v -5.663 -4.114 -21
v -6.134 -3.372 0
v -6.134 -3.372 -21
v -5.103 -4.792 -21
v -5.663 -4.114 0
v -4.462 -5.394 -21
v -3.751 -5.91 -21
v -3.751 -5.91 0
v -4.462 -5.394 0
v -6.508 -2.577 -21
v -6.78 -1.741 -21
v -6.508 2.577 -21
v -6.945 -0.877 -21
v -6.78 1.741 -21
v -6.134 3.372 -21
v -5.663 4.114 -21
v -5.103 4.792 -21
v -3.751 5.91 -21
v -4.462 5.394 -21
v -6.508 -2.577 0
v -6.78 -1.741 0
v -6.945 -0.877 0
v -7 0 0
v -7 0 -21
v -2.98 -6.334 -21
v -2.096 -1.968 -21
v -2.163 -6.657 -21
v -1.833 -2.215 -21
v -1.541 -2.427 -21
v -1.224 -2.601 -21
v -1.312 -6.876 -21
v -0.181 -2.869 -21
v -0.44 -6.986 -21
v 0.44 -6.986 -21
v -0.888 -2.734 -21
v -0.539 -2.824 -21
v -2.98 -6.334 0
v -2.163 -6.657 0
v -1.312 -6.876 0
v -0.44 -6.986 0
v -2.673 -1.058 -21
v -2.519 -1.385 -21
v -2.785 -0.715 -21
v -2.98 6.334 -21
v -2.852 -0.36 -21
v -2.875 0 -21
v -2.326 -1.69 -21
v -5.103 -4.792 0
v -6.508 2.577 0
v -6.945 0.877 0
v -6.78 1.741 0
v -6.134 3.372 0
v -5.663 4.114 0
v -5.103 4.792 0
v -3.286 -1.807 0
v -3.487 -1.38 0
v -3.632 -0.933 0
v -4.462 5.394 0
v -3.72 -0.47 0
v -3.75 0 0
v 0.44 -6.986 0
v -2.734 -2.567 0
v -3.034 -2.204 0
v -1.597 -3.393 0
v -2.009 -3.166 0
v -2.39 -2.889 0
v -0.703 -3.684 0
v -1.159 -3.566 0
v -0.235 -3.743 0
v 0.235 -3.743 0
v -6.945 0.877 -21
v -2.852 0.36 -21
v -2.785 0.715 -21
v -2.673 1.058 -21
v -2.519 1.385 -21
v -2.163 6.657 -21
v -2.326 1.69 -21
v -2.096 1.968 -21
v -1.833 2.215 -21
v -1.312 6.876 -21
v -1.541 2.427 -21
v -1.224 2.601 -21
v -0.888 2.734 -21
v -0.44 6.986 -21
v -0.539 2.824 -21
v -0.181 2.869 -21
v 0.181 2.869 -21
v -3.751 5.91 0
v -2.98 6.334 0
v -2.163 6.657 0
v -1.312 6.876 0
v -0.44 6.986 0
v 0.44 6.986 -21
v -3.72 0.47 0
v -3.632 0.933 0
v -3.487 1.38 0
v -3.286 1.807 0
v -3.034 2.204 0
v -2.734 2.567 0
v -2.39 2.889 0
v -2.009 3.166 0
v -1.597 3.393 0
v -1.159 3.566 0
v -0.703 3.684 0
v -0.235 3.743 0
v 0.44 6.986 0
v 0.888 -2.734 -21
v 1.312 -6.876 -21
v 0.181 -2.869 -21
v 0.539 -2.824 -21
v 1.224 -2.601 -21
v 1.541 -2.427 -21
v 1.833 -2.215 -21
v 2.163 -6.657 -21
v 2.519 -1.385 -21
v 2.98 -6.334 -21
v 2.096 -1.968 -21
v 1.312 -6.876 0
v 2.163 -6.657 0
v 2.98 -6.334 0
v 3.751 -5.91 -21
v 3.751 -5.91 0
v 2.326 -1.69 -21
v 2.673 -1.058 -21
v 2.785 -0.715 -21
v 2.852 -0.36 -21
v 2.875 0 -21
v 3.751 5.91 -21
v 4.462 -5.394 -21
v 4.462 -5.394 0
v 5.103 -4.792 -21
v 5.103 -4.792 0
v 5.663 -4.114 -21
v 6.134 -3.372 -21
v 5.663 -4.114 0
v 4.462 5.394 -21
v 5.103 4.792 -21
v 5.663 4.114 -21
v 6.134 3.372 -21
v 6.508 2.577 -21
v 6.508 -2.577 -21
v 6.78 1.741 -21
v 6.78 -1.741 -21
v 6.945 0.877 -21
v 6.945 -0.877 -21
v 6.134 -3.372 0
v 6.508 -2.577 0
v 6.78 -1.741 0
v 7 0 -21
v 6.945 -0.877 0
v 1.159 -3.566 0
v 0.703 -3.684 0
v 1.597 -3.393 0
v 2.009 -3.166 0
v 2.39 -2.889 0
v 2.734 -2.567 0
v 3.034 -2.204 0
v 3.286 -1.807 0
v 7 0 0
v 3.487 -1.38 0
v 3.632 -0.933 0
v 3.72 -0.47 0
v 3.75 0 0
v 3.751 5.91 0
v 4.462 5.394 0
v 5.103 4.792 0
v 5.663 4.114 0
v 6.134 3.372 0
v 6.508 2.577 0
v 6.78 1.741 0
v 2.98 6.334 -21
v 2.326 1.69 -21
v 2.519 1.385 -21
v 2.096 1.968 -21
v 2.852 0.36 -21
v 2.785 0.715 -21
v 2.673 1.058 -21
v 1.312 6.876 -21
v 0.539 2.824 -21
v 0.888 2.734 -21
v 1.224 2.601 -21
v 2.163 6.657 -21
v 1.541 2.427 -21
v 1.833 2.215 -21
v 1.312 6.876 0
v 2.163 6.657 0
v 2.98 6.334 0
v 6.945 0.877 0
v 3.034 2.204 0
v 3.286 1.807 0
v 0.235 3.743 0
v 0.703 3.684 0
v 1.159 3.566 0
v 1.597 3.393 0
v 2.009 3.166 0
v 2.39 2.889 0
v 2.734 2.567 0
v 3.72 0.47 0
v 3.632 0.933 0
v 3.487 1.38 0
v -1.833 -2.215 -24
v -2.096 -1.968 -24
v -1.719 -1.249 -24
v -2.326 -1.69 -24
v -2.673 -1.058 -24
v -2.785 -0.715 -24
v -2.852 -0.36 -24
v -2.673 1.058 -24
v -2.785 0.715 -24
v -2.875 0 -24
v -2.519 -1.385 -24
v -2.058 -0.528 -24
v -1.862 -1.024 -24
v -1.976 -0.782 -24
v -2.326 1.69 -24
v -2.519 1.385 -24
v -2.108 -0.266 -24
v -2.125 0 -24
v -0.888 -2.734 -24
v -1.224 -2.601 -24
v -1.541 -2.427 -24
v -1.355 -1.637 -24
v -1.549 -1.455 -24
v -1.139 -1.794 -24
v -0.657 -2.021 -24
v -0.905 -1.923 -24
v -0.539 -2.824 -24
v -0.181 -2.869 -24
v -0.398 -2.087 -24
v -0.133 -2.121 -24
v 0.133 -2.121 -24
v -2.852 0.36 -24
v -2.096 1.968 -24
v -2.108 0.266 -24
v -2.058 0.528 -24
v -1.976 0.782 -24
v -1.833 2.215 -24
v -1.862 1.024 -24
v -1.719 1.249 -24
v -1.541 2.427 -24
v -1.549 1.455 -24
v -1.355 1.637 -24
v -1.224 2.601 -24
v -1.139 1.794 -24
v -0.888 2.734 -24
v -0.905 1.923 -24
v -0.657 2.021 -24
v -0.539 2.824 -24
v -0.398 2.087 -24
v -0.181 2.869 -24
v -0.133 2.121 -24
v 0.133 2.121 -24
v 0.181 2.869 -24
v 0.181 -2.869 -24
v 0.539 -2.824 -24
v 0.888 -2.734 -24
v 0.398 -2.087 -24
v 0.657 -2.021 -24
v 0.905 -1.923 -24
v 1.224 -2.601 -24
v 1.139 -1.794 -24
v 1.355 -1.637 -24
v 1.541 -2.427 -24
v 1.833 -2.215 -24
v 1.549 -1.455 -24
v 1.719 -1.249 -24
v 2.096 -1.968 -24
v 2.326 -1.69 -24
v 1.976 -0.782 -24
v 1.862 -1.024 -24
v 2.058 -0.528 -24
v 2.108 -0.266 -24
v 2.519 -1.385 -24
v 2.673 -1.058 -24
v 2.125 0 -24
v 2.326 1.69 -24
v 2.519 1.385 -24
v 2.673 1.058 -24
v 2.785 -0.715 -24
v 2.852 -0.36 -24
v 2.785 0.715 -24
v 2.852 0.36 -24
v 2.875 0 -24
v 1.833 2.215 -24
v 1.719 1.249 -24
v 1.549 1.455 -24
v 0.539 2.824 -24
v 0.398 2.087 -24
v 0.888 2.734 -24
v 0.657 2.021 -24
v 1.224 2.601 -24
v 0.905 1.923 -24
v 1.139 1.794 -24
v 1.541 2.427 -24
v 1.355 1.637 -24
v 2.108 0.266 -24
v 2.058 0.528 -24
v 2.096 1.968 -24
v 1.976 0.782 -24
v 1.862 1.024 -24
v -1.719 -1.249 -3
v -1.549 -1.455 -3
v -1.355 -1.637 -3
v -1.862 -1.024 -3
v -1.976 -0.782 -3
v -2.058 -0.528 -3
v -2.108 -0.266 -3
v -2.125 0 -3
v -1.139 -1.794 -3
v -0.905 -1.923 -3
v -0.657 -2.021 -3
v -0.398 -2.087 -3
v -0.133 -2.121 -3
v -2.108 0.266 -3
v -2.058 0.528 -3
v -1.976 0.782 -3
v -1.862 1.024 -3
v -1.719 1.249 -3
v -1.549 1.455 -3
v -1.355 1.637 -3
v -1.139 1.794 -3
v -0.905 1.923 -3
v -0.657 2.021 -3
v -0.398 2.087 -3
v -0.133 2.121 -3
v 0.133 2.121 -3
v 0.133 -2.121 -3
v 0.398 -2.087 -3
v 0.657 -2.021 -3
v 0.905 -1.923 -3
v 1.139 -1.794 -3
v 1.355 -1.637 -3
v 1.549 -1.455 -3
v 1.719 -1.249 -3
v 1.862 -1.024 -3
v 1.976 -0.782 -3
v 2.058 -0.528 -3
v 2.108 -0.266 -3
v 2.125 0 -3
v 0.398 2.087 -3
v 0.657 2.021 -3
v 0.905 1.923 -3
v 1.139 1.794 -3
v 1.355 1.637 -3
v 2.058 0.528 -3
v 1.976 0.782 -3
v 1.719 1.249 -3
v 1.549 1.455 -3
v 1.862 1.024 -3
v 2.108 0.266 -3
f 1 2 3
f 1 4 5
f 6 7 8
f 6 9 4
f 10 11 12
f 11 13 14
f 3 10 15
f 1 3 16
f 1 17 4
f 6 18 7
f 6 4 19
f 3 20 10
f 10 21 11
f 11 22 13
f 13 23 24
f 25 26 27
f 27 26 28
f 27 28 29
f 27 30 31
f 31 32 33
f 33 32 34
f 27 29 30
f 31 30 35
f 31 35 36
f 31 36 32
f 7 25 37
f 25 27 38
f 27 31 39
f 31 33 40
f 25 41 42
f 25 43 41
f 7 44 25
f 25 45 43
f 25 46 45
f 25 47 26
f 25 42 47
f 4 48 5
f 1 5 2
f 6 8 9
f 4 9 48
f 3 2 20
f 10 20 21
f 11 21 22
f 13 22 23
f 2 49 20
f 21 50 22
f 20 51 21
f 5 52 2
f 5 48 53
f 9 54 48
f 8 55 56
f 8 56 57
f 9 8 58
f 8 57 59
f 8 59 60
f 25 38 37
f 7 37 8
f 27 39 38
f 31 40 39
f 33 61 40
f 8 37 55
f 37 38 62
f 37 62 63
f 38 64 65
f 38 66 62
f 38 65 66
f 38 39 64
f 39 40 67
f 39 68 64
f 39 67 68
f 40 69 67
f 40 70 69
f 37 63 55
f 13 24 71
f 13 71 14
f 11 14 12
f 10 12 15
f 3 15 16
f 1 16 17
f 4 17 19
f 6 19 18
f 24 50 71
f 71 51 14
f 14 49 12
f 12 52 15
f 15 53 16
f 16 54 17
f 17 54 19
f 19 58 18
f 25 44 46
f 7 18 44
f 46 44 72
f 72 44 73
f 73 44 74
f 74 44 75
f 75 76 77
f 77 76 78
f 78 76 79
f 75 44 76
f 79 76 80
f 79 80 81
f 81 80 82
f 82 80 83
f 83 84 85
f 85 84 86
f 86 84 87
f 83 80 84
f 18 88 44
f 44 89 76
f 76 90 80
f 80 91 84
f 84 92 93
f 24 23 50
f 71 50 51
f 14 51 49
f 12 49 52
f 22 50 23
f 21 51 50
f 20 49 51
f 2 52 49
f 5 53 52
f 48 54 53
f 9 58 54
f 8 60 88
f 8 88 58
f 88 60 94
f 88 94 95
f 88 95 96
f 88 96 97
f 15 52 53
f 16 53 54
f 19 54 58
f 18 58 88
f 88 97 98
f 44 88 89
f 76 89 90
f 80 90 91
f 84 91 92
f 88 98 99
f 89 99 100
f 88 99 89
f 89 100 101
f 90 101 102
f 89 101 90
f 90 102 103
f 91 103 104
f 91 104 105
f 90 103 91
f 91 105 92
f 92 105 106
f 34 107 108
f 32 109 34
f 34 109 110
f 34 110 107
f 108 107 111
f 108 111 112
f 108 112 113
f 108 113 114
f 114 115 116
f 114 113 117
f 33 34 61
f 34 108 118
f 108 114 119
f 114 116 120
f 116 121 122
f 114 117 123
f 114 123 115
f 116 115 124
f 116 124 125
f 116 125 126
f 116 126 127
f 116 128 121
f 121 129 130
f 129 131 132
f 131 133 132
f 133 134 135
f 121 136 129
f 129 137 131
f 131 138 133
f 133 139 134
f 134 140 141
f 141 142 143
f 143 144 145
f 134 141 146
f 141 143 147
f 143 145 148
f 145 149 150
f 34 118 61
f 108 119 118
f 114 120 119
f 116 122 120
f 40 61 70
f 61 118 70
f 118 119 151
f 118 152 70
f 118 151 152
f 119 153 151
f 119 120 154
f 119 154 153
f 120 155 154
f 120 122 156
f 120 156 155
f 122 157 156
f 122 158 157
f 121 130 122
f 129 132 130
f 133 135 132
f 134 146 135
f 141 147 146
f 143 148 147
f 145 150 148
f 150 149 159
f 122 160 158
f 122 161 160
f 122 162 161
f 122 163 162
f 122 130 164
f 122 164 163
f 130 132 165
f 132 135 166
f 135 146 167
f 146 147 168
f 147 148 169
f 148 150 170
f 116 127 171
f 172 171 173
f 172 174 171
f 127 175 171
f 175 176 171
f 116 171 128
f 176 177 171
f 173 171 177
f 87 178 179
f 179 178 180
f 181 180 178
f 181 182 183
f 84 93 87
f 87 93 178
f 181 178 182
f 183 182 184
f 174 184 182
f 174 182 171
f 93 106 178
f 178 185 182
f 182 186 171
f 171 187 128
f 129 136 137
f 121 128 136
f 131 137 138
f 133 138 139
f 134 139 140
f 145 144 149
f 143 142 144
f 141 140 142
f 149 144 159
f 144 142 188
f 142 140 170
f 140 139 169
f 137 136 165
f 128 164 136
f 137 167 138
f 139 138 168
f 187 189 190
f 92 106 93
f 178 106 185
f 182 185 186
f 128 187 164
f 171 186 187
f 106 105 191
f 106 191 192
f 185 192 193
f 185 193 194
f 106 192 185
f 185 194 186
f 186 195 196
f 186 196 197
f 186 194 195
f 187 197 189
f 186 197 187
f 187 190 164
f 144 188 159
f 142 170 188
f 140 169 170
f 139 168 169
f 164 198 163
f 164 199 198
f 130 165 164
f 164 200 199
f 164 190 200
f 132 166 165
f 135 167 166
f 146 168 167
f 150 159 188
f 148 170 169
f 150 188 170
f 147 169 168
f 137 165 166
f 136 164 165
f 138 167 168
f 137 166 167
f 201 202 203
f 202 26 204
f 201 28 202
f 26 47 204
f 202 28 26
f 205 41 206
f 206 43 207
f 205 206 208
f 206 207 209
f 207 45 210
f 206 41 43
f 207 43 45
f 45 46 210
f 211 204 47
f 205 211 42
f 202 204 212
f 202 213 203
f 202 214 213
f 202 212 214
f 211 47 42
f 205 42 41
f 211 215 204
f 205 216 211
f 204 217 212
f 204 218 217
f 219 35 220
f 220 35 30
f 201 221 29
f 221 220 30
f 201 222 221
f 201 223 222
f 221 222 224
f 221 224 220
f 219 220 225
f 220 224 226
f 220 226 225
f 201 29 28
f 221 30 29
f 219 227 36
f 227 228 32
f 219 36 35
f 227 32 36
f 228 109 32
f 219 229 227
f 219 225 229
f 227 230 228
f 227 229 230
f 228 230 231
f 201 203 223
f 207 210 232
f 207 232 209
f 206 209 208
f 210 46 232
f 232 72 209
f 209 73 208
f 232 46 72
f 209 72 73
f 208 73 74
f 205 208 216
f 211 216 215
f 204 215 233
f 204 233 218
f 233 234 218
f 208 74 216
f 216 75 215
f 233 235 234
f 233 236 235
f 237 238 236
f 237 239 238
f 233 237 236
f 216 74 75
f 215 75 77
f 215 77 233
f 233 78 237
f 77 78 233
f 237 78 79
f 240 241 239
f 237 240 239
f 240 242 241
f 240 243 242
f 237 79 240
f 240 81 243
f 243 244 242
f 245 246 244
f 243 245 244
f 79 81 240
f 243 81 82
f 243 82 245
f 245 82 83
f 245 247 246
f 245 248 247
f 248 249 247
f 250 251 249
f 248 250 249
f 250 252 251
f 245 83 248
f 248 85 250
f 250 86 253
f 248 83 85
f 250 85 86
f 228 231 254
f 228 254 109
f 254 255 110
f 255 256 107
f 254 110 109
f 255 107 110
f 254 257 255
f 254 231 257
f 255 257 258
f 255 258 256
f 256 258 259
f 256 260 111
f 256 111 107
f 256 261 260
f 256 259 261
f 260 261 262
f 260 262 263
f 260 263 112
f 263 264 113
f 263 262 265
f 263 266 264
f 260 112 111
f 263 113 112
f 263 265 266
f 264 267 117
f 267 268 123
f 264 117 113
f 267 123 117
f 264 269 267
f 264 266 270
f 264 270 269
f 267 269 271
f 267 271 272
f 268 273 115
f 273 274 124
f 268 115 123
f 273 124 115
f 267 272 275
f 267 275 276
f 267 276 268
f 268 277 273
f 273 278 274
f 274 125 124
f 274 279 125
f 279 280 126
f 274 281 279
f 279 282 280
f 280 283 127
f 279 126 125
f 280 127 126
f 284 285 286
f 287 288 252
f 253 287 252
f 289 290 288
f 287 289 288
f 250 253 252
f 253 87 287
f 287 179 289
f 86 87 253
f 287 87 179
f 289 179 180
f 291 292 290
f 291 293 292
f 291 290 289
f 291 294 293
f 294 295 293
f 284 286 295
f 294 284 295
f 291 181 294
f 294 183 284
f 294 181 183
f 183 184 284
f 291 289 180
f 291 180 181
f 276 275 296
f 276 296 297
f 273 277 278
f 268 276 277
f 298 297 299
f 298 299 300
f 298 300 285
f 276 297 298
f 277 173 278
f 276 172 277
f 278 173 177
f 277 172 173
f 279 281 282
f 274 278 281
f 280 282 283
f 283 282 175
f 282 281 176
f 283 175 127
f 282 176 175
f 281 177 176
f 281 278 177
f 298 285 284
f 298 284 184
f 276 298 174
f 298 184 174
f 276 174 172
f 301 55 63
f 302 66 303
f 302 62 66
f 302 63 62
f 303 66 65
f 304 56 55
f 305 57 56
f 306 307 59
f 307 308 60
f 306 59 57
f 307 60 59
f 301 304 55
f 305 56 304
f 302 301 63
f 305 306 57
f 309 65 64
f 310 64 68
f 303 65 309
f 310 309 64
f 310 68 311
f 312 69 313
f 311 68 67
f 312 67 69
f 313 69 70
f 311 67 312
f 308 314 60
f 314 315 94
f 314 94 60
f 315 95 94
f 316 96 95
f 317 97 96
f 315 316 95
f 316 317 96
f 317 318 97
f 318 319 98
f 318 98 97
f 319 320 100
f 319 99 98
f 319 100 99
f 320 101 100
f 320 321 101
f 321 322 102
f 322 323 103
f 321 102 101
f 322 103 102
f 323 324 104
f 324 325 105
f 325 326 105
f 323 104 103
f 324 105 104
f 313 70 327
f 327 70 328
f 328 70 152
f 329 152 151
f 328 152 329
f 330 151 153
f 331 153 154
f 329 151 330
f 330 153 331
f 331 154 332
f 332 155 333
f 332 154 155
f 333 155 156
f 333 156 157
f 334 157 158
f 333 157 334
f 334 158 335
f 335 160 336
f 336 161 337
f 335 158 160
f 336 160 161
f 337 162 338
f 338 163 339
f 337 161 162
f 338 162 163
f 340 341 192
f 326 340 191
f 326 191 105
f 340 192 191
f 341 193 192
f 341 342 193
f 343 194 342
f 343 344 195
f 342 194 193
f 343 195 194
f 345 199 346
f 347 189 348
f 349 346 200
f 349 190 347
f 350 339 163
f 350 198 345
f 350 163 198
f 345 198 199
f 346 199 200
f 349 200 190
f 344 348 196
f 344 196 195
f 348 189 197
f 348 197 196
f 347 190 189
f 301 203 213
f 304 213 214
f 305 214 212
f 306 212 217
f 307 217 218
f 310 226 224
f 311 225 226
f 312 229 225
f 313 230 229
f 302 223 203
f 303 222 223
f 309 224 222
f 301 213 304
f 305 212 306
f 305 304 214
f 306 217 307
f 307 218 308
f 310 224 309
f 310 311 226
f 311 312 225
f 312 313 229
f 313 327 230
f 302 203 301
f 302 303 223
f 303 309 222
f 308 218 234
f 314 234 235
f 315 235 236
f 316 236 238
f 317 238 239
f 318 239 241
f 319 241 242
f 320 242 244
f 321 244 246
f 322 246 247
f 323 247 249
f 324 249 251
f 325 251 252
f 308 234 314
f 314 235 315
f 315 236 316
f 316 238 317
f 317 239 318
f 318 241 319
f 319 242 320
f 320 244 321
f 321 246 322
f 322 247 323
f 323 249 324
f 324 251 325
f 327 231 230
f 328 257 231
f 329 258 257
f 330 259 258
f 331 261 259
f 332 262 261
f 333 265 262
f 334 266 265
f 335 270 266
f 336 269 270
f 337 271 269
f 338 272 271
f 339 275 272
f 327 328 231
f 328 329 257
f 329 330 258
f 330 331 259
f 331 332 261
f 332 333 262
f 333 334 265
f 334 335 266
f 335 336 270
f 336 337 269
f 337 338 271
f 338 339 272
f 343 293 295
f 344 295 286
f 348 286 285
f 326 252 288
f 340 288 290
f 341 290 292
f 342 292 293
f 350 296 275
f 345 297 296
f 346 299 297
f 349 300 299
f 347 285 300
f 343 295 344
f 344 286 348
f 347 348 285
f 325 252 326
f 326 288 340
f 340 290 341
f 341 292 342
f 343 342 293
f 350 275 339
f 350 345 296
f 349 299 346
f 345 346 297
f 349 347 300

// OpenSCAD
$fn = 50;


difference() {
	union() {
		translate(v = [0, 0, -21.0000000000]) {
			cylinder(h = 21, r = 7.0000000000);
		}
		#translate(v = [0, 0, -24.0000000000]) {
			cylinder(h = 24, r = 2.8750000000);
		}
	}
	union() {
		translate(v = [0, 0, 0]) {
			rotate(a = [0, 0, 0]) {
				difference() {
					union() {
						translate(v = [0, 0, -24.0000000000]) {
							cylinder(h = 24, r = 2.0000000000);
						}
						translate(v = [0, 0, -3]) {
							cylinder(h = 3, r1 = 2.1250000000, r2 = 3.7500000000);
						}
						translate(v = [0, 0, -24.0000000000]) {
							cylinder(h = 24, r = 2.1250000000);
						}
						translate(v = [0, 0, -24.0000000000]) {
							cylinder(h = 24, r = 2.0000000000);
						}
					}
					union();
				}
			}
		}
	}
}
